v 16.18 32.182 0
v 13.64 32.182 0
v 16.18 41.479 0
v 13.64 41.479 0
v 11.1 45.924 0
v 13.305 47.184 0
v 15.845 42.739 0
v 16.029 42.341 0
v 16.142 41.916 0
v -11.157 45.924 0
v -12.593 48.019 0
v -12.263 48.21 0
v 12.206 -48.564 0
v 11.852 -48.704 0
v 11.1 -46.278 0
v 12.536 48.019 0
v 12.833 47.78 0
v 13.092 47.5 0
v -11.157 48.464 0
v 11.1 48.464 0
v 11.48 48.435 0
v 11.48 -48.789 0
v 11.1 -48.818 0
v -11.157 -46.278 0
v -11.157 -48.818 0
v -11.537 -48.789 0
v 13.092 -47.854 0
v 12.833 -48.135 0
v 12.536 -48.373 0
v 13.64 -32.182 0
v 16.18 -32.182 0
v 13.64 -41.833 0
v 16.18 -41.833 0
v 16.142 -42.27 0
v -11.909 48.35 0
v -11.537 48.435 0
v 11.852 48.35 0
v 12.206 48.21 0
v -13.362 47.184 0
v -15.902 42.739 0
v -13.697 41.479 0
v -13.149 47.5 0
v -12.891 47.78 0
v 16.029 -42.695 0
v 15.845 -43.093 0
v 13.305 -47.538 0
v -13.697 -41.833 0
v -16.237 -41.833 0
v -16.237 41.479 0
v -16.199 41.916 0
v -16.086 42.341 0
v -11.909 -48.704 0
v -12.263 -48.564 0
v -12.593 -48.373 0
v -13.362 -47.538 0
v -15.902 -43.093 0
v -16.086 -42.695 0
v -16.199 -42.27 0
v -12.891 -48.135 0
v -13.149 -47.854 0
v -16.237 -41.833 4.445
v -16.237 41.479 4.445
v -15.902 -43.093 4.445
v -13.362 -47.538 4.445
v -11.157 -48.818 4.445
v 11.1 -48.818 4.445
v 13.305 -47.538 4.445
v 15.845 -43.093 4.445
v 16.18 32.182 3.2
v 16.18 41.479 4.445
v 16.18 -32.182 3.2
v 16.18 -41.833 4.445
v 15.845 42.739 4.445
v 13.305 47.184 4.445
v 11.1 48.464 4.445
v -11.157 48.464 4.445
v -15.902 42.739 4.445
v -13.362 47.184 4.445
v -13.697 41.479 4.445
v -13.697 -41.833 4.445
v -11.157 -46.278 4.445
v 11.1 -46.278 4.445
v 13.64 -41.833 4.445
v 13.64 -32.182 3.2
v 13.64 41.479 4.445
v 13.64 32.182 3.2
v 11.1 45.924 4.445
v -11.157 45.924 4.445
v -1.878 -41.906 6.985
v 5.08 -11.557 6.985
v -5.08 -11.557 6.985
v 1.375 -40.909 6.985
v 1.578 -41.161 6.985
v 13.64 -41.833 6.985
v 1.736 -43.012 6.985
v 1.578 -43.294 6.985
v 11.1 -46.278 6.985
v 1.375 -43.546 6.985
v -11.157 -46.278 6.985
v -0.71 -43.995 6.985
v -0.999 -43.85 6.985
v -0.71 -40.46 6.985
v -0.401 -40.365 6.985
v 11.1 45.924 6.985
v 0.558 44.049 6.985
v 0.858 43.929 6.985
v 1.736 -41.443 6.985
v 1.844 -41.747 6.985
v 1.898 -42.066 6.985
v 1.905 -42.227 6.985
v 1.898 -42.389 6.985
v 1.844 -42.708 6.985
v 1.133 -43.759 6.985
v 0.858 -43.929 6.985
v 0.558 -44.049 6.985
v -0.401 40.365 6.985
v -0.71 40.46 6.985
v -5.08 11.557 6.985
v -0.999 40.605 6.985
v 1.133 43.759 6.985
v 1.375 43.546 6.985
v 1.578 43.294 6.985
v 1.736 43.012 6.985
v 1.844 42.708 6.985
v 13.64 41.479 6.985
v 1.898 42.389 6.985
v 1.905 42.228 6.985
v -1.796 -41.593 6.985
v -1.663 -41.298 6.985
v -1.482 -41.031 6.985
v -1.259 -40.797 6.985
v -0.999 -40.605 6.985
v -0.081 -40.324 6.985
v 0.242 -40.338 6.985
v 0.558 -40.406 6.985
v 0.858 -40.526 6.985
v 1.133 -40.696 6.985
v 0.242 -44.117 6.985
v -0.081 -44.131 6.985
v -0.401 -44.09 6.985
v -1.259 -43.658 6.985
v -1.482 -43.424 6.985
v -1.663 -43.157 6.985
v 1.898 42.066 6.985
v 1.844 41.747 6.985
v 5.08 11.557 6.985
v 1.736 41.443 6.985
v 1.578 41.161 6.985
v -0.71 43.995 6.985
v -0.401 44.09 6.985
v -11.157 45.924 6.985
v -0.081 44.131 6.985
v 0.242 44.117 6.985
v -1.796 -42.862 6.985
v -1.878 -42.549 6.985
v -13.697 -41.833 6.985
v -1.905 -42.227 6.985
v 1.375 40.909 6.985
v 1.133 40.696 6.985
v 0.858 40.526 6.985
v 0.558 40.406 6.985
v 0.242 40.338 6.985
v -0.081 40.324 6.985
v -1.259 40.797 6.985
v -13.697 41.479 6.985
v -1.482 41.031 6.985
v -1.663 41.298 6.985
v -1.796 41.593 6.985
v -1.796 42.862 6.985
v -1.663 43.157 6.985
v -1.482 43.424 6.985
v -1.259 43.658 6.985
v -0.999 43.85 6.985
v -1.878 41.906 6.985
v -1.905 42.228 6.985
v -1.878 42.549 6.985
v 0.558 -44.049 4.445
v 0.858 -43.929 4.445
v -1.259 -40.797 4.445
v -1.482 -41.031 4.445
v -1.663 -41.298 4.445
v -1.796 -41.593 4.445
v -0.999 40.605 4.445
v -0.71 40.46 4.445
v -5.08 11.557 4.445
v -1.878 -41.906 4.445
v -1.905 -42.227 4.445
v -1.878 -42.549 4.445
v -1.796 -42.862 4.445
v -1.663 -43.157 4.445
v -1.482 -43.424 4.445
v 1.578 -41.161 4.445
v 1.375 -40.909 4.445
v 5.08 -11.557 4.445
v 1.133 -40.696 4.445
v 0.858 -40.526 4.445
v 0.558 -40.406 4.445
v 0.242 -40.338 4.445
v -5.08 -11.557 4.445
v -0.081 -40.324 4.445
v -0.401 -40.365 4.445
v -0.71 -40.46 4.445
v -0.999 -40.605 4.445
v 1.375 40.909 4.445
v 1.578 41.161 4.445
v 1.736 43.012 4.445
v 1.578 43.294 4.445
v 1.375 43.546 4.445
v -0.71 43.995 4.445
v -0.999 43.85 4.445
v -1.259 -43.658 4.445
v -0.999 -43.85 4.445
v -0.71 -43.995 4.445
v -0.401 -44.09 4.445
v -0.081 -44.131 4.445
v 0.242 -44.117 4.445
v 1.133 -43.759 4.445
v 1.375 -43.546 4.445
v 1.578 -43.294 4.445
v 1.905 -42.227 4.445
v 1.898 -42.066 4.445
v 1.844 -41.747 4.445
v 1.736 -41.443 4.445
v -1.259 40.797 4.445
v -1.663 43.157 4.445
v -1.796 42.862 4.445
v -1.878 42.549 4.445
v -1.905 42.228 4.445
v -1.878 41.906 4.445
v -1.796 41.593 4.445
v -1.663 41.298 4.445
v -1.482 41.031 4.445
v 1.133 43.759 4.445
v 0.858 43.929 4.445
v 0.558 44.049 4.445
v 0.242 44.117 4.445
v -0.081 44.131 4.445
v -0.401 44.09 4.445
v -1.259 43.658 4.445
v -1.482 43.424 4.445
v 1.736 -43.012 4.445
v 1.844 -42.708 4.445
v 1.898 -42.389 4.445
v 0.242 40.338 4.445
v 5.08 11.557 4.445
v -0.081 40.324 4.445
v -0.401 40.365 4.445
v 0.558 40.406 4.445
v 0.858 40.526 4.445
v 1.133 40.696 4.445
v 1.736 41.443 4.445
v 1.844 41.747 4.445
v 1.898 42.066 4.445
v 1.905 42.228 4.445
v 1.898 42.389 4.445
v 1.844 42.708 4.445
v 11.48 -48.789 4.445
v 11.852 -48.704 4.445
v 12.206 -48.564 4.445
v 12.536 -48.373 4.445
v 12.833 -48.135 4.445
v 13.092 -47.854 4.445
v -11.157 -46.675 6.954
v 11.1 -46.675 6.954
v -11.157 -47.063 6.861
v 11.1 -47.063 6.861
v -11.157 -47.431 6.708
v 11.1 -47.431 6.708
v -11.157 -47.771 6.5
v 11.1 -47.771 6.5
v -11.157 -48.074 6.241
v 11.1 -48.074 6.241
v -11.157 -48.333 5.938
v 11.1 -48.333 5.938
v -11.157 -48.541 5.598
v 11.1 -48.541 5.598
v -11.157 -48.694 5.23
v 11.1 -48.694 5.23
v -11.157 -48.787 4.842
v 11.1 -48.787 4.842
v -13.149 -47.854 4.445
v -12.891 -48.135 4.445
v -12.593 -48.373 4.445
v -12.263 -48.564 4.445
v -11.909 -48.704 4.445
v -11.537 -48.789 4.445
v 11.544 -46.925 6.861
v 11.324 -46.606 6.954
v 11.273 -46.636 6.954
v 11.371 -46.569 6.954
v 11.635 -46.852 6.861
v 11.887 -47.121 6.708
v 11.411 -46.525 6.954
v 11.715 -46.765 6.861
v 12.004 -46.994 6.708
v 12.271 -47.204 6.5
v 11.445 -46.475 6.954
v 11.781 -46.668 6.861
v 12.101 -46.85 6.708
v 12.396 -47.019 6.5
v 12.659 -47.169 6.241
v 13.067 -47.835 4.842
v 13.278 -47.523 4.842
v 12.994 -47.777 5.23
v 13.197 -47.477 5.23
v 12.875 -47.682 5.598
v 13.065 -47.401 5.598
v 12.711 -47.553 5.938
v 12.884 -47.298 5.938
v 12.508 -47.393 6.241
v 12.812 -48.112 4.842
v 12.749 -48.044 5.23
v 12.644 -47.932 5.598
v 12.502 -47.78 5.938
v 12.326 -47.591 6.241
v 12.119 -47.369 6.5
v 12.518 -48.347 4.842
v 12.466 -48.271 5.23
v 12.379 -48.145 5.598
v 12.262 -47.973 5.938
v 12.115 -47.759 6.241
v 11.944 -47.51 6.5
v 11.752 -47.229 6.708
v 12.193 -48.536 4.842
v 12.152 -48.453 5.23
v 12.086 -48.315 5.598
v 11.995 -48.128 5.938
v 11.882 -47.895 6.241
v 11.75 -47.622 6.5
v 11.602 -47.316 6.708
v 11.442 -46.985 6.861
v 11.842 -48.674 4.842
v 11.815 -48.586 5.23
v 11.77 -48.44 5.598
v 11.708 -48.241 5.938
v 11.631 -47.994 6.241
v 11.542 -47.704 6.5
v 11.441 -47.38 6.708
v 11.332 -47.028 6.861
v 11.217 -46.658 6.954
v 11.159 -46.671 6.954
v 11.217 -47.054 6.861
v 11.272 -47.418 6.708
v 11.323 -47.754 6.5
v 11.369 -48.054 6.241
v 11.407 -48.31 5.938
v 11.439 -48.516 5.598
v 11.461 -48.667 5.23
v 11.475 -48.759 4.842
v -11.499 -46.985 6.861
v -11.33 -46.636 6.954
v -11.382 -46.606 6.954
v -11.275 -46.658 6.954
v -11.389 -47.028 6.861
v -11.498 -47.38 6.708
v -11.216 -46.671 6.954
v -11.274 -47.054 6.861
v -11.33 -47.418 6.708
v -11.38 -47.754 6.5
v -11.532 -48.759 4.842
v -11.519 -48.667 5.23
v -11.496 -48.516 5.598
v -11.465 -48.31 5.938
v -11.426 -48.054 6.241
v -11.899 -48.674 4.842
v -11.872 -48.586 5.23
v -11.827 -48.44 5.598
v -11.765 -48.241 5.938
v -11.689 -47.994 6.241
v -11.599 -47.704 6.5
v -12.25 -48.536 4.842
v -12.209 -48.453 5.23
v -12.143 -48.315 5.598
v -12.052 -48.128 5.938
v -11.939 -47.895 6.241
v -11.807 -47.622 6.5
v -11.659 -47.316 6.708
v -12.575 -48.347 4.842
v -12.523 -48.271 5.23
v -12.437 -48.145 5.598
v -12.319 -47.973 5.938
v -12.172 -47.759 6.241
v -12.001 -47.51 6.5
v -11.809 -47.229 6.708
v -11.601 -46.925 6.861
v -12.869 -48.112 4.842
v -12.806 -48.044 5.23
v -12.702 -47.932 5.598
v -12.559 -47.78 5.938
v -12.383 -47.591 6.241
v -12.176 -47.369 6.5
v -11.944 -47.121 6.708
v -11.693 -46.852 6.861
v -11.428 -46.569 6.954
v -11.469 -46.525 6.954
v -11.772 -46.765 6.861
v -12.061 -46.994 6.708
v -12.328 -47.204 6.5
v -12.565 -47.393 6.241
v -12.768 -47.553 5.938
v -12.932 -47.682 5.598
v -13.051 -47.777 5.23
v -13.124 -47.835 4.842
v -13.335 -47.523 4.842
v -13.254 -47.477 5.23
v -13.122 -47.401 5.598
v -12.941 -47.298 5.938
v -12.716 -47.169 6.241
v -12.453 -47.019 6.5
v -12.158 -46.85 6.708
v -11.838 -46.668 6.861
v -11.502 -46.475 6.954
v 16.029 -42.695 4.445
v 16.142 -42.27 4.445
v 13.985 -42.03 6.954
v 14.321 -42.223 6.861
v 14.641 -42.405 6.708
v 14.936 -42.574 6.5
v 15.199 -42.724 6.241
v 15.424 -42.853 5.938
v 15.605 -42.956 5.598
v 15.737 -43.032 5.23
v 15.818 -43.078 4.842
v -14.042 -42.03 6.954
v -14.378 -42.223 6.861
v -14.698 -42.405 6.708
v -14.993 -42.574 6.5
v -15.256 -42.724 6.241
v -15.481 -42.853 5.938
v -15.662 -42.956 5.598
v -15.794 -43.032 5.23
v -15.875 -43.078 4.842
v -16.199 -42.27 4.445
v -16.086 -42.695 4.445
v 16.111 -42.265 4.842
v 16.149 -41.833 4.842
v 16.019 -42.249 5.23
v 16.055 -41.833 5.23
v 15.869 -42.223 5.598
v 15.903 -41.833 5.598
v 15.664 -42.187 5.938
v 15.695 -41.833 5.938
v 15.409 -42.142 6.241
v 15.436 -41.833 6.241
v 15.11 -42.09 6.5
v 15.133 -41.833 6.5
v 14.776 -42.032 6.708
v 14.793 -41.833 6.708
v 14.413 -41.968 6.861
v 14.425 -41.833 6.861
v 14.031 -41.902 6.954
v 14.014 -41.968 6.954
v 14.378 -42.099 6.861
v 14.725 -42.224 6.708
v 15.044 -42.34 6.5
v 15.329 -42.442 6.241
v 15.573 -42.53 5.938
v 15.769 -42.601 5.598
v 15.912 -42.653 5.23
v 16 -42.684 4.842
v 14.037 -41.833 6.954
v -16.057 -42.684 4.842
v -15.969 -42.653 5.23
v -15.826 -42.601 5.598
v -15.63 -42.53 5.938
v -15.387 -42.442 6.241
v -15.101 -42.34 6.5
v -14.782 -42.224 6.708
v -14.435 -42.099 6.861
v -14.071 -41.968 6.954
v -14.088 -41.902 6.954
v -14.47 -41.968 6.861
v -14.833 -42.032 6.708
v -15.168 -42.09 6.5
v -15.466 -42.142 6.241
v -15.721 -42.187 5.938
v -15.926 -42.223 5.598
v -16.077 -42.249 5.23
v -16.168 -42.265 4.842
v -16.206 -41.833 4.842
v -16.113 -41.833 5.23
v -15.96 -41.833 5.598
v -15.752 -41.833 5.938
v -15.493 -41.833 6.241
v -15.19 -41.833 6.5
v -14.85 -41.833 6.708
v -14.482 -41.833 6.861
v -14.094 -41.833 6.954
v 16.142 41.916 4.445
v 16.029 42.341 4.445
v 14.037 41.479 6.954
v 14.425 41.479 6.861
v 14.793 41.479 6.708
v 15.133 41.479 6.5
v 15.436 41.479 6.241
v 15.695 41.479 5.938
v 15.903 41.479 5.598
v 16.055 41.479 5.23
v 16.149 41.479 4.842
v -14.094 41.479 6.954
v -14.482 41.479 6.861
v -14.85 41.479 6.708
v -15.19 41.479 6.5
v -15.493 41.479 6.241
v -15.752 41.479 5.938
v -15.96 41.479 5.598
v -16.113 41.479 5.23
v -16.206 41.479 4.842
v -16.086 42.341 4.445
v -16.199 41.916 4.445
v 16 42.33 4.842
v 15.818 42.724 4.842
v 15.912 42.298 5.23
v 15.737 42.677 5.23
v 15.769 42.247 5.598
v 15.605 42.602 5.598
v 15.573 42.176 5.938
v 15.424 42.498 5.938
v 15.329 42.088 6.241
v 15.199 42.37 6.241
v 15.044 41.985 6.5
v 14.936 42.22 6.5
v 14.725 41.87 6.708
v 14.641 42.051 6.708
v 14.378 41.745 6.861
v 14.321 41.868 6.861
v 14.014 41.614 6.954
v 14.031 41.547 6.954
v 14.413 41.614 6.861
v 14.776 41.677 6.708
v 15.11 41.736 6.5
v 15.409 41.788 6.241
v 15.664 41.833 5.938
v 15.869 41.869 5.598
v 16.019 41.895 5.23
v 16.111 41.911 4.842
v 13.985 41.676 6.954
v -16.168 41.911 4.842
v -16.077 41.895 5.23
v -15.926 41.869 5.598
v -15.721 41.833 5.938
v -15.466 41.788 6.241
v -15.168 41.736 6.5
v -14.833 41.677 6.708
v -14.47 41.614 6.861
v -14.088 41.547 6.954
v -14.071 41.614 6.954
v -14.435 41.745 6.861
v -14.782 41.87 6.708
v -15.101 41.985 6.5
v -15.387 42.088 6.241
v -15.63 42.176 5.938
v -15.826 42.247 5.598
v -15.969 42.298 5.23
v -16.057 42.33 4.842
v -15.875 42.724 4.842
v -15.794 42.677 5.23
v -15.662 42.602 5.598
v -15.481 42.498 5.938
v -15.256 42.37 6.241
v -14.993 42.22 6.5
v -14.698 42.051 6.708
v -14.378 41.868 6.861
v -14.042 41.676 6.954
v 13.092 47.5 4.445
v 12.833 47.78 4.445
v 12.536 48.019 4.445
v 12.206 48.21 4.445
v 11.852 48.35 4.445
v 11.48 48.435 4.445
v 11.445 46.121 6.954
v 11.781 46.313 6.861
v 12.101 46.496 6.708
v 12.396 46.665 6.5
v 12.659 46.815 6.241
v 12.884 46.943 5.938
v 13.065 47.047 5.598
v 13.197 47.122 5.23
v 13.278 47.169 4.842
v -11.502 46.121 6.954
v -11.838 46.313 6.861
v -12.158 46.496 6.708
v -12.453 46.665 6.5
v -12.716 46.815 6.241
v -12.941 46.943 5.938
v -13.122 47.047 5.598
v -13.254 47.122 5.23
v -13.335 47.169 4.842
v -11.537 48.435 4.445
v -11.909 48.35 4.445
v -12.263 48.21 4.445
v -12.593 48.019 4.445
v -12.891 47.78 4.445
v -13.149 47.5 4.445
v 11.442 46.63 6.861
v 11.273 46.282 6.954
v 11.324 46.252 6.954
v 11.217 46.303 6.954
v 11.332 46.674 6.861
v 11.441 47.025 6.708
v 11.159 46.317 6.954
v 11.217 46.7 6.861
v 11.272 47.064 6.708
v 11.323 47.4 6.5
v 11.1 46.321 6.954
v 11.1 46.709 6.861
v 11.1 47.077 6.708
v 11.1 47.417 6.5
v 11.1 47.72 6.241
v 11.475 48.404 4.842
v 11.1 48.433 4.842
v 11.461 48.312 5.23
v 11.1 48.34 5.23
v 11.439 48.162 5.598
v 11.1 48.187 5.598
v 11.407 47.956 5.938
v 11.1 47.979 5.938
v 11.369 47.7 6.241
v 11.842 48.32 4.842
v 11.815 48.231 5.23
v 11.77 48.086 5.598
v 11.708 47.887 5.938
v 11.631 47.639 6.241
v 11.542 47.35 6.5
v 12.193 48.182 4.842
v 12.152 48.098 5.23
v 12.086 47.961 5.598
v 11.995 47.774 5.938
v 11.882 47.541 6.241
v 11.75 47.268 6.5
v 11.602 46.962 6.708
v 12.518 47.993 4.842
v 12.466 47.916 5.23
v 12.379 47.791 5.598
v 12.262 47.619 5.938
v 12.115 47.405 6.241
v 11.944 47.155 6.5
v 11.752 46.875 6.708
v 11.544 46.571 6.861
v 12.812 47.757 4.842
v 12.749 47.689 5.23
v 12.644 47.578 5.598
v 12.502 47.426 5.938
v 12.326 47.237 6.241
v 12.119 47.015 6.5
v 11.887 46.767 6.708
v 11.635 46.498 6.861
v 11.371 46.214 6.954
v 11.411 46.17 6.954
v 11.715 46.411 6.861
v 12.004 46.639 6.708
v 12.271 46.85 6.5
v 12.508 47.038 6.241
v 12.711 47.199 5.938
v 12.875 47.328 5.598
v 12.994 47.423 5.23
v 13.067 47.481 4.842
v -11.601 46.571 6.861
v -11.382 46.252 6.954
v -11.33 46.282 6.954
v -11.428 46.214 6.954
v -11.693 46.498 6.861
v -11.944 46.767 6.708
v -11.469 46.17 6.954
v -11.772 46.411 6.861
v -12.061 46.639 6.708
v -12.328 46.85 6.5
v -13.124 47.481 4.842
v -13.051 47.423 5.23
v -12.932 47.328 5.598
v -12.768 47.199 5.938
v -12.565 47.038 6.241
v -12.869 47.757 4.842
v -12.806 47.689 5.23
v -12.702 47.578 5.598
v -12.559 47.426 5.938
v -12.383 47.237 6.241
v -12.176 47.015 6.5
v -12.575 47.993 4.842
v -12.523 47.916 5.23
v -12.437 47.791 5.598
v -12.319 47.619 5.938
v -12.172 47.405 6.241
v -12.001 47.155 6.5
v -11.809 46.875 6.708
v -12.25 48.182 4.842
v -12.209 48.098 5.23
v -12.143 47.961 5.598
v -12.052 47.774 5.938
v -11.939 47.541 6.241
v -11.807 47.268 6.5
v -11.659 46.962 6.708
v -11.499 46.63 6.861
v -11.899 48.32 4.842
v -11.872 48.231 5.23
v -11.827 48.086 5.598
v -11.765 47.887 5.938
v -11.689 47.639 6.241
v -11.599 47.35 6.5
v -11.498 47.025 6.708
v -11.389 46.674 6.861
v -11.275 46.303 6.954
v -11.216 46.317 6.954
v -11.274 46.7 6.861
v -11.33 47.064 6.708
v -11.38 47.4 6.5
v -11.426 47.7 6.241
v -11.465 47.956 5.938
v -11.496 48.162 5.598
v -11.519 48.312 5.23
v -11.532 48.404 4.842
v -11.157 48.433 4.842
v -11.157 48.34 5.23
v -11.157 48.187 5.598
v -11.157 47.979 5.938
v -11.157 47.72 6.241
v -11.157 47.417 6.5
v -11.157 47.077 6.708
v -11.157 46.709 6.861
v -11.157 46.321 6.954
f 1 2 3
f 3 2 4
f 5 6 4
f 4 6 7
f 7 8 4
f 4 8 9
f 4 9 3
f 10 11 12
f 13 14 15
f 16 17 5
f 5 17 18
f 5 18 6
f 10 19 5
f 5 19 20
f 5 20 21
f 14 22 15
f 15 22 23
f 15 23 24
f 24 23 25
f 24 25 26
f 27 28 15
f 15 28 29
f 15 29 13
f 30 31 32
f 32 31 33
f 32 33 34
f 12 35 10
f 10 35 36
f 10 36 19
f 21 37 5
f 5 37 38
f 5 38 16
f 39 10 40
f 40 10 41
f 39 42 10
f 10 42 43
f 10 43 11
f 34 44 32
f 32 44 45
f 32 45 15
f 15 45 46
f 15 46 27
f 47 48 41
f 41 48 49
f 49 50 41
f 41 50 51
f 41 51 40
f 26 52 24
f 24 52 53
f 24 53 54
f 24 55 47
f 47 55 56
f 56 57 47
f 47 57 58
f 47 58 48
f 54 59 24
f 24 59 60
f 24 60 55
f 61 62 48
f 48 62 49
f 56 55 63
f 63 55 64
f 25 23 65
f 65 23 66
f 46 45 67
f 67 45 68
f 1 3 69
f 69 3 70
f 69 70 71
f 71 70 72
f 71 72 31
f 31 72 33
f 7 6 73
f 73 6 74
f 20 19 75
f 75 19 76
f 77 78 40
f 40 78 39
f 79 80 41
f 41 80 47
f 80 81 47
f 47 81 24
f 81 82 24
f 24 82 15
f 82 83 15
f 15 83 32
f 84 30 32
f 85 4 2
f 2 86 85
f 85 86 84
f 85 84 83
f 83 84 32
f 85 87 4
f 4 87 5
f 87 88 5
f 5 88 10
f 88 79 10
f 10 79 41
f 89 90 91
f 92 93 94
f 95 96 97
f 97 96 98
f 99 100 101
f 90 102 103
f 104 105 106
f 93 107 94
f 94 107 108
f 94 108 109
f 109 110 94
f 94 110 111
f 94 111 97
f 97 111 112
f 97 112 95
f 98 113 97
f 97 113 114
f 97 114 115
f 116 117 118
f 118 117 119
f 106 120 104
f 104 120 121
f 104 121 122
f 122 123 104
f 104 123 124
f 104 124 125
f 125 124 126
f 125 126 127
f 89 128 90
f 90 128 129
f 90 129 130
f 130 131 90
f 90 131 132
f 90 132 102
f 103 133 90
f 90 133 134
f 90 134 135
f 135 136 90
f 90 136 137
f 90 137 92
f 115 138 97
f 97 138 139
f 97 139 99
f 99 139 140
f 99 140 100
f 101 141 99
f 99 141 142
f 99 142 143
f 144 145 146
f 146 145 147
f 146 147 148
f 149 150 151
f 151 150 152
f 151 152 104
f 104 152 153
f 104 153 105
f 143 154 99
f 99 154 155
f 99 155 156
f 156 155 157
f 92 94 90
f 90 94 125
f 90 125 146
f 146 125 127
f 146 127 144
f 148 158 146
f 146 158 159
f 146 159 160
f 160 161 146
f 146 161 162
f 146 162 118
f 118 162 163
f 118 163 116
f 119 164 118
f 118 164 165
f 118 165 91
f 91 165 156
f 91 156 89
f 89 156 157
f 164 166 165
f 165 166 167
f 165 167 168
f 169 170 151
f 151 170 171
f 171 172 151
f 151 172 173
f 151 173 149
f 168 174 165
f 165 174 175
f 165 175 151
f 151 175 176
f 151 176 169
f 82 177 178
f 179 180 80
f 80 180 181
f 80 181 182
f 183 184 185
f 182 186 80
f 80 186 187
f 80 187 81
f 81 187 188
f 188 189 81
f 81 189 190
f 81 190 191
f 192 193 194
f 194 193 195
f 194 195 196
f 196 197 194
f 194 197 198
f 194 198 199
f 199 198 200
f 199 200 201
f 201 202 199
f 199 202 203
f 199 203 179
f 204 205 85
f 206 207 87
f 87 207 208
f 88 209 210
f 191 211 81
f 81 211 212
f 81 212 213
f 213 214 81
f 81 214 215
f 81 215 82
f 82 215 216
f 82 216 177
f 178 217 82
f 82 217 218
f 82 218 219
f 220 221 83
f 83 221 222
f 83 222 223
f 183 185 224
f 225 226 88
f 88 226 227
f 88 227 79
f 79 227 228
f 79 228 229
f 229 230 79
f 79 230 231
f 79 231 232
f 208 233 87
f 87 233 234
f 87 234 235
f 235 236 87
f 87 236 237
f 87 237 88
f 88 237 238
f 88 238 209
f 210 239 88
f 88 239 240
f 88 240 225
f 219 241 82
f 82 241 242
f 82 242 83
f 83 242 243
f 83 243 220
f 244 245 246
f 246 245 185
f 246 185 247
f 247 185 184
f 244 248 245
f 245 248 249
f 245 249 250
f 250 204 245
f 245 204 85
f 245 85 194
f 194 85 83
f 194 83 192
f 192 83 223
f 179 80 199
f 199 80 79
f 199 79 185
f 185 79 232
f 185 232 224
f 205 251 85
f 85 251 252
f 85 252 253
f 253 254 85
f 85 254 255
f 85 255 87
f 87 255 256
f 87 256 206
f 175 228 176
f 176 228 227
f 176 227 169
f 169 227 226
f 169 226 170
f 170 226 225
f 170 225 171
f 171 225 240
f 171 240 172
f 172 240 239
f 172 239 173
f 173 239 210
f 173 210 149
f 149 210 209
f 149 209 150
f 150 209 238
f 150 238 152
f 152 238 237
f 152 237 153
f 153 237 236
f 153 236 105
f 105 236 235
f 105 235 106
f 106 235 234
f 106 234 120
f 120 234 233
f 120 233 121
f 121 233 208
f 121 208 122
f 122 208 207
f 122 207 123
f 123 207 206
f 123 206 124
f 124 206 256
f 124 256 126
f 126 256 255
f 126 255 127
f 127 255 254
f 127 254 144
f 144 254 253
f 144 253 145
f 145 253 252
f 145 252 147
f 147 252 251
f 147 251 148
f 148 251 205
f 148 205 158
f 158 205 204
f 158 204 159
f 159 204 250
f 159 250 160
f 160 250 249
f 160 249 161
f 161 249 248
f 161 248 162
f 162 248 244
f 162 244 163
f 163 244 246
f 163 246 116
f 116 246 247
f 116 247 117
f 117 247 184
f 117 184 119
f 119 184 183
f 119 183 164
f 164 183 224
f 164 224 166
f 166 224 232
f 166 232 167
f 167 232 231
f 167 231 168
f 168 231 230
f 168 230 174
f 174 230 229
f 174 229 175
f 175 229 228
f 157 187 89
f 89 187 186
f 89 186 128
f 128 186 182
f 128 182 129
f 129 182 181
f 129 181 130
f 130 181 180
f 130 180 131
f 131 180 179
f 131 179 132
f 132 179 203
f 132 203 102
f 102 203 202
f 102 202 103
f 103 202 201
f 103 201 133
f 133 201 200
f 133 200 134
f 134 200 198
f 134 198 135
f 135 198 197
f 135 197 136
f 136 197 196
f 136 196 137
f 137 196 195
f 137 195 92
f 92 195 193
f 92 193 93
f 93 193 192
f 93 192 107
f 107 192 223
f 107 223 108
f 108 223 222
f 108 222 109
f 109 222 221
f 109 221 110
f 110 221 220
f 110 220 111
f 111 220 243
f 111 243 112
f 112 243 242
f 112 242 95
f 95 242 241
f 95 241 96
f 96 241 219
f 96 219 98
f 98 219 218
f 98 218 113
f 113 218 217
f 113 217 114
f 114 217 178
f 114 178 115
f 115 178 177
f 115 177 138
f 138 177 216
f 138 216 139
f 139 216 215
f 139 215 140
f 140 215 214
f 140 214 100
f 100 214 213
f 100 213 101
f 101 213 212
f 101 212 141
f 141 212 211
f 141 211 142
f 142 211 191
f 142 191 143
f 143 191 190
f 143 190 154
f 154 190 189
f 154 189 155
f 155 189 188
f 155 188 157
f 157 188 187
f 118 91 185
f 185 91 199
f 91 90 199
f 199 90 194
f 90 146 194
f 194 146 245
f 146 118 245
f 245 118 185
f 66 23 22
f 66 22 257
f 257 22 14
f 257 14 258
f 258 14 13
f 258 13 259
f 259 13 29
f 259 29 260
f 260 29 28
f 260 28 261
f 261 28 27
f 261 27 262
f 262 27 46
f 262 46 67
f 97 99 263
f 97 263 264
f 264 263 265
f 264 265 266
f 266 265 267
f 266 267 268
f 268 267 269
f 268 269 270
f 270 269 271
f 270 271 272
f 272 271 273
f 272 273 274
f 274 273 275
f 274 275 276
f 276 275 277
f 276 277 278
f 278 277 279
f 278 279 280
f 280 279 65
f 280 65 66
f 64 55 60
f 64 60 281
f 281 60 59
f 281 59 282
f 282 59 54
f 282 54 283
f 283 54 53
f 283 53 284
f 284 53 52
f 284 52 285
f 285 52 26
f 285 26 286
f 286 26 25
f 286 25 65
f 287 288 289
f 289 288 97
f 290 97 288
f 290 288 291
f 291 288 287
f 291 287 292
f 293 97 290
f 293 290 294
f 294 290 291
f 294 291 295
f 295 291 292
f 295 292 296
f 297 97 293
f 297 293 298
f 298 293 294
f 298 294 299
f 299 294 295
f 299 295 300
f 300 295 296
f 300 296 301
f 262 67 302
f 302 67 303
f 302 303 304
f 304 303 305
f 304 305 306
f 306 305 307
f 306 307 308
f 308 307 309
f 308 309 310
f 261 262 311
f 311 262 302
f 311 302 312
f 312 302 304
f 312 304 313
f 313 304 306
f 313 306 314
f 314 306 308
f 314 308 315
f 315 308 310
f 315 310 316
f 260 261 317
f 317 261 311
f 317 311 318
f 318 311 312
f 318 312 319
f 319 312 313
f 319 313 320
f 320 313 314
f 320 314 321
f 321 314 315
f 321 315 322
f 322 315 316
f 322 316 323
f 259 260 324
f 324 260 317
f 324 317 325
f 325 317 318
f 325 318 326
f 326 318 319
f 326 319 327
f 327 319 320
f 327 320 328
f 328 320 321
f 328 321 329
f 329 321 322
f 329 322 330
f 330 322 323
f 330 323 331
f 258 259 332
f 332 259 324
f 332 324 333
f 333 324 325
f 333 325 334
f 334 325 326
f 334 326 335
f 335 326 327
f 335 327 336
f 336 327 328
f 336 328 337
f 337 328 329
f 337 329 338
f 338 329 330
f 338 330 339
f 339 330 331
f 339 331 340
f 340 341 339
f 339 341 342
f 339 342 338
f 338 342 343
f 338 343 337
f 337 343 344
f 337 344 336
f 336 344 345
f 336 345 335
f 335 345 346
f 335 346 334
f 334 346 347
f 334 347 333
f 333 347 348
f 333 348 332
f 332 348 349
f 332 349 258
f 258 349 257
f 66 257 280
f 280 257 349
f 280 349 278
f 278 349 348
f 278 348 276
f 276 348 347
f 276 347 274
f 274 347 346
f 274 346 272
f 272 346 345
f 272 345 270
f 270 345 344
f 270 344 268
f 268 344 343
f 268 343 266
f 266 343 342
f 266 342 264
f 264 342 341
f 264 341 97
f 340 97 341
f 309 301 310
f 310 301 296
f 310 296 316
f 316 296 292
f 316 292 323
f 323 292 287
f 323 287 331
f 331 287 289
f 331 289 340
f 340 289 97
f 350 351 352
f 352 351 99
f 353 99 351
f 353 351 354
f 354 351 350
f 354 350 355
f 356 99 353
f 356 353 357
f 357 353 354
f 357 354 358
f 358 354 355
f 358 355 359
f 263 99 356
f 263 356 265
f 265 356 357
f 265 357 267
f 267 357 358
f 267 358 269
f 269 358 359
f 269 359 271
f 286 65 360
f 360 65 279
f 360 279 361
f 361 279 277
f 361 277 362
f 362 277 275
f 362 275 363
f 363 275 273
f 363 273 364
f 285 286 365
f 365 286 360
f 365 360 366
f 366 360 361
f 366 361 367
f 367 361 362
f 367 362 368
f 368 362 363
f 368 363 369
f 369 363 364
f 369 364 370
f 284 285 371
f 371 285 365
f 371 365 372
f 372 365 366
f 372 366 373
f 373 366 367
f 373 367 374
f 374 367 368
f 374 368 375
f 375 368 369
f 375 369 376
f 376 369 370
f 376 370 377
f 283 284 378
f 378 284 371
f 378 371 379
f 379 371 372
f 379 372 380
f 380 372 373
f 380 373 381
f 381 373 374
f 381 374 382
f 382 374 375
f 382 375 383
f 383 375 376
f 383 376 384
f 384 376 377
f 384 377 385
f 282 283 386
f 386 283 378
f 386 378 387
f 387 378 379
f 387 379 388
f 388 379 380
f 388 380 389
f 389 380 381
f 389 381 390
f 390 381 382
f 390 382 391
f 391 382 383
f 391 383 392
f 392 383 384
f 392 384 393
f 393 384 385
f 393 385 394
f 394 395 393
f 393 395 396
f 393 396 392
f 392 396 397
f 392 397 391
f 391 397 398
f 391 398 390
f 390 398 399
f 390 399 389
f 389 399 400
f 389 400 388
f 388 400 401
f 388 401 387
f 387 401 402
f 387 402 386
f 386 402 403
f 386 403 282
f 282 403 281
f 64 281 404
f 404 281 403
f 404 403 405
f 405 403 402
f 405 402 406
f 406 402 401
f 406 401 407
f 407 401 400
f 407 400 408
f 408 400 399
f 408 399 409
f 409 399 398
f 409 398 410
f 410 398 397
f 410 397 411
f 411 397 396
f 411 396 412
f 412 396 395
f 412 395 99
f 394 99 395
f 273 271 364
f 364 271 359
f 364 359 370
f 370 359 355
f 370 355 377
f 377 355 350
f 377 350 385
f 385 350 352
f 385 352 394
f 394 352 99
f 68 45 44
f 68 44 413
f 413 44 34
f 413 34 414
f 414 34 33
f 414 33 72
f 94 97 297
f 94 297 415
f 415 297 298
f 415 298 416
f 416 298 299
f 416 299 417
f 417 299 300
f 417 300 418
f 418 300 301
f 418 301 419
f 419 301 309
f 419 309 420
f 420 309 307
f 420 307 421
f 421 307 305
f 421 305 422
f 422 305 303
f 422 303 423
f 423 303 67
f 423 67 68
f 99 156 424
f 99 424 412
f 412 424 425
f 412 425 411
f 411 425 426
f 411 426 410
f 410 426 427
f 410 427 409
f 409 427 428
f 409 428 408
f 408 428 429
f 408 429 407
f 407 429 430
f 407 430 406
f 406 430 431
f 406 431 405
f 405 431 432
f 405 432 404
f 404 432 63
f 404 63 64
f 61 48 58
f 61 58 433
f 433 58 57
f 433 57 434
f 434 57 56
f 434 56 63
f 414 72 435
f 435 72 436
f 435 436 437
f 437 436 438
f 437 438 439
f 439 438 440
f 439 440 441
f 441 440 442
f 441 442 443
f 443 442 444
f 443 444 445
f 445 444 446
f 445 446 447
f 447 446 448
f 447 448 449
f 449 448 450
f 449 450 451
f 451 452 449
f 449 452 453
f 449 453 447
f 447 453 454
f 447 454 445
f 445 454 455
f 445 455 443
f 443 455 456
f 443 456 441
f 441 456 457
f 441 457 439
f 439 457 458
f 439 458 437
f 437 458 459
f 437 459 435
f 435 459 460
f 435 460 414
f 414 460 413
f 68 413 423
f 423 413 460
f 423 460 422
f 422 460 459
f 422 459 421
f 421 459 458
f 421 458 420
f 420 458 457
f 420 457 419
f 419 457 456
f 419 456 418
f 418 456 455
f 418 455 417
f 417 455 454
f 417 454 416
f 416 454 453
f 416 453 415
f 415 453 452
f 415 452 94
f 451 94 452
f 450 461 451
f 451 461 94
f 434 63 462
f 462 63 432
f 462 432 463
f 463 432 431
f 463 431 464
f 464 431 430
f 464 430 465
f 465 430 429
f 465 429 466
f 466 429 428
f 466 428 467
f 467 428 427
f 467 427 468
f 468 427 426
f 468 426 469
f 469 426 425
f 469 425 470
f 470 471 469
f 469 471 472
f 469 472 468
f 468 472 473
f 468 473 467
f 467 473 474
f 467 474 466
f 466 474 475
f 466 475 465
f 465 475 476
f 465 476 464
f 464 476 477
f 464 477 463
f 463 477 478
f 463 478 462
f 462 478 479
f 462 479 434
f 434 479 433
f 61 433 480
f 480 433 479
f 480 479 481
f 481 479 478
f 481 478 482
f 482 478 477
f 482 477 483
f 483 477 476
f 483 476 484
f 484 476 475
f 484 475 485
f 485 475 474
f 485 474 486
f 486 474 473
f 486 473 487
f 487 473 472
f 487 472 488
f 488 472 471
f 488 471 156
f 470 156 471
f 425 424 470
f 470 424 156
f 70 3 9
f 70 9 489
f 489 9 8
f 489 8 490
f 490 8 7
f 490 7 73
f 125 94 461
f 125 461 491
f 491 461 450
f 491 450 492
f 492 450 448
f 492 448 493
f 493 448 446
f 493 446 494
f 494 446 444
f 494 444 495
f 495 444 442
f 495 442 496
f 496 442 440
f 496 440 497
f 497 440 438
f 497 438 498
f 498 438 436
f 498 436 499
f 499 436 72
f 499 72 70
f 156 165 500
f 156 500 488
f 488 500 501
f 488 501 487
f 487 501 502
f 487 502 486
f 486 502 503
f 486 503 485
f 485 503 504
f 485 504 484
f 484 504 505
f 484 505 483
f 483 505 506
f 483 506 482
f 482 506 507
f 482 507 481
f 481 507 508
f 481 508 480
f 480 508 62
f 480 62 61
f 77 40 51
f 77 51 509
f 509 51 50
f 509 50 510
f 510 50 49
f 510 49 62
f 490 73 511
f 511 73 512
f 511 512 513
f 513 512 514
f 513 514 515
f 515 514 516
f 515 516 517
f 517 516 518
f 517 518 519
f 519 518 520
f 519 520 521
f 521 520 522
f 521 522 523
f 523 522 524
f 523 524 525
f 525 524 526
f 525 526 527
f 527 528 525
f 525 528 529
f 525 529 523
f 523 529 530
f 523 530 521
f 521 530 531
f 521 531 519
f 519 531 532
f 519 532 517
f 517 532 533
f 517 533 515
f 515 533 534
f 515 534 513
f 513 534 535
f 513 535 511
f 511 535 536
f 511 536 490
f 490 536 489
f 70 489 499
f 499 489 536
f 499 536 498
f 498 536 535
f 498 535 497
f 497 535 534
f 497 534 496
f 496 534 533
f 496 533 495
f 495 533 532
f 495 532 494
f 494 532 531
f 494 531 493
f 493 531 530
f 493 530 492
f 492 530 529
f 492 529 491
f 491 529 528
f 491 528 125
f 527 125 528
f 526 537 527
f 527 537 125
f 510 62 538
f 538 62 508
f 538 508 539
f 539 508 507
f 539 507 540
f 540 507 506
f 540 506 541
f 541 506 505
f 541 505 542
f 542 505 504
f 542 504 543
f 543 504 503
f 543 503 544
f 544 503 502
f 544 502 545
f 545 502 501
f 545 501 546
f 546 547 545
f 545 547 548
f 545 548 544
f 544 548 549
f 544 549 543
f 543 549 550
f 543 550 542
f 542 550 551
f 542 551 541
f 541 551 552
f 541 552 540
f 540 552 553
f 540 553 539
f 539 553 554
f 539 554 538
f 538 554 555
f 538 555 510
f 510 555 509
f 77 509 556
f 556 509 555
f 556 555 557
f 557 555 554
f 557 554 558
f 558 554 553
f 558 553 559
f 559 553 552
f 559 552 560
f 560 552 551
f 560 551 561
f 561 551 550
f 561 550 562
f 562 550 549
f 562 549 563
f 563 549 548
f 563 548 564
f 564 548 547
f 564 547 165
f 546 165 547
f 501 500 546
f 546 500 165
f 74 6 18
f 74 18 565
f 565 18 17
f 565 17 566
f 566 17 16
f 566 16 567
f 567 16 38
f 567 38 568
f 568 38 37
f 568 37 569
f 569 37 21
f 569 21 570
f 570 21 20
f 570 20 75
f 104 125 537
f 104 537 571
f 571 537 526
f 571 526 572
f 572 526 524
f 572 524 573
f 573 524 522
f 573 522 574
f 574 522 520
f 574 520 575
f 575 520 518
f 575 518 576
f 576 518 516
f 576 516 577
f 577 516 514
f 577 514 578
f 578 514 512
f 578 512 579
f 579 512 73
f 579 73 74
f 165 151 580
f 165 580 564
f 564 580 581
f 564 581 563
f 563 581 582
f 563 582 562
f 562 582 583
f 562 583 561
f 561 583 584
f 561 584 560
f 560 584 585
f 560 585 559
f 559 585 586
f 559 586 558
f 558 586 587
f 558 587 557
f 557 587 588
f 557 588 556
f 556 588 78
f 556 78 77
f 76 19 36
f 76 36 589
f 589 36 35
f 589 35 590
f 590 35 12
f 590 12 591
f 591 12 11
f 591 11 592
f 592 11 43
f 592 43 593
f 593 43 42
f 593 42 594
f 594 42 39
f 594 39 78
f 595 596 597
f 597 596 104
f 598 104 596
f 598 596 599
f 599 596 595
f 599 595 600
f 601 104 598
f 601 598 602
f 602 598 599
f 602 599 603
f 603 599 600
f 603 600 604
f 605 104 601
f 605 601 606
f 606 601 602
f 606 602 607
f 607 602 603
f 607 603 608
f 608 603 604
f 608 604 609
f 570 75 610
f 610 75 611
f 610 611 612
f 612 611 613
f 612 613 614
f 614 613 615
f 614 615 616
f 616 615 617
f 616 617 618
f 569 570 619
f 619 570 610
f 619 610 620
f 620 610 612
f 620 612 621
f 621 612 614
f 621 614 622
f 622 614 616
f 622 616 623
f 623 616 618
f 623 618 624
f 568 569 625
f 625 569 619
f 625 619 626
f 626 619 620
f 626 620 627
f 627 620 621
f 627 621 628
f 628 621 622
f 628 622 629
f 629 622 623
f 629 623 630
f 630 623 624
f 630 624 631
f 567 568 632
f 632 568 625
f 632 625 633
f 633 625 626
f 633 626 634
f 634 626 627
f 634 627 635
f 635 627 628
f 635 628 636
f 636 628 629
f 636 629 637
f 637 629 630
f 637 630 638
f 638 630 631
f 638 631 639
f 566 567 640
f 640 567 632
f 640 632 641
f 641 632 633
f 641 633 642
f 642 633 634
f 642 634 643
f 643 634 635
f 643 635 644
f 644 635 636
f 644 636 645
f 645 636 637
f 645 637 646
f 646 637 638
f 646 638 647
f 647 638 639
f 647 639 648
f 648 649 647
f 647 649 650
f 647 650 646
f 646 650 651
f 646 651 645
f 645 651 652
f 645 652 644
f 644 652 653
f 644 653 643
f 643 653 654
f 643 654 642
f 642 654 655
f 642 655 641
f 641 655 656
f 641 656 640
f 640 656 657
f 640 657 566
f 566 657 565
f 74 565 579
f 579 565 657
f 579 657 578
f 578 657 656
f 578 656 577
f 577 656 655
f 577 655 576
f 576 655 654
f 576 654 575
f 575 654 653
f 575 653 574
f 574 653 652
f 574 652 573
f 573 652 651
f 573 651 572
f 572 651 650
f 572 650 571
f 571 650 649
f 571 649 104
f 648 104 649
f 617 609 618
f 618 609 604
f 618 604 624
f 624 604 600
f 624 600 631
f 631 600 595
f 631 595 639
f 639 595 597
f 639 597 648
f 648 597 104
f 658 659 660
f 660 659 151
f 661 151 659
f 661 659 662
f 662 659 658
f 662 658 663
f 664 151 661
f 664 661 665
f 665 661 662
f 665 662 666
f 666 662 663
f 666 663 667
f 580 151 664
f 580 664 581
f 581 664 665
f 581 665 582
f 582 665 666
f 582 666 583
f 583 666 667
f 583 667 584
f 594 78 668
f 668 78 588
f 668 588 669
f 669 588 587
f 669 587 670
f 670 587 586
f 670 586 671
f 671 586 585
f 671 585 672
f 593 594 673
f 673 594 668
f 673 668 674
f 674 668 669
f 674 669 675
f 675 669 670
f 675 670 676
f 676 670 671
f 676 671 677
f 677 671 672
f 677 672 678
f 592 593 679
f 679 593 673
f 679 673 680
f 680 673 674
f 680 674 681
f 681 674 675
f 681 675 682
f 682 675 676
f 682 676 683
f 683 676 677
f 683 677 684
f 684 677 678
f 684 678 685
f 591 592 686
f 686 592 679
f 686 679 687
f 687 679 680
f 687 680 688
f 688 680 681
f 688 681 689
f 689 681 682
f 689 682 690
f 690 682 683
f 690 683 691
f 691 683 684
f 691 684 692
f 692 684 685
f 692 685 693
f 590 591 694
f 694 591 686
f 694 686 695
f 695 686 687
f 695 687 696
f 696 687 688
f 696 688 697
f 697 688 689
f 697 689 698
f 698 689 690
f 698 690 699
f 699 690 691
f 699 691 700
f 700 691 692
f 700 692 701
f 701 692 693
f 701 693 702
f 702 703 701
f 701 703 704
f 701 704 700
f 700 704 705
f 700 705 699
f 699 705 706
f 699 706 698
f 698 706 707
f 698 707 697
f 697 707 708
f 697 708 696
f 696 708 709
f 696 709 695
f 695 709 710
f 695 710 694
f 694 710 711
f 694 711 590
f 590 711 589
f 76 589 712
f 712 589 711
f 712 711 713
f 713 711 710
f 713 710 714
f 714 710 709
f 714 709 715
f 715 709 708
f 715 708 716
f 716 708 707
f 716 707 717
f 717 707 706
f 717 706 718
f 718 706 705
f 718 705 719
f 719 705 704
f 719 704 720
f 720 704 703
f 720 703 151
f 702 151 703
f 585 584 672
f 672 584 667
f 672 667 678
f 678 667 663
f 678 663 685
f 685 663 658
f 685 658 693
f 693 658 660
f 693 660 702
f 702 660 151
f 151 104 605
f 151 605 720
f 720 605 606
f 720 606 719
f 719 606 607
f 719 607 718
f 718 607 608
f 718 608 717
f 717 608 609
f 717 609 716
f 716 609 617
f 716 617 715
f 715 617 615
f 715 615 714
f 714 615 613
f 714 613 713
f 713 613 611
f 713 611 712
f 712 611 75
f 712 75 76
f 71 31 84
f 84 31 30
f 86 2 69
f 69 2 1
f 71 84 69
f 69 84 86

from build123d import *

# Parameters (mm, degrees)
BOSS_EXTRUDE1_DEPTH = 4.445
SKETCH2_R           = 1.905
SKETCH2_W           = 10.16
SKETCH2_H           = 23.114
BOSS_EXTRUDE2_DEPTH = 2.54
FILLET1_R           = 2.54
SKETCH3_W           = 6.4008
SKETCH3_H           = 64.3636
CUT_EXTRUDE1_DEPTH  = 2.54


with BuildPart() as part:
    # Sketch1 → Boss-Extrude1 (new body)
    with BuildSketch(Plane.XY):
        Polygon((-16.23695, 42.153431645), (-12.63096924, 48.463897975), (12.57381924, 48.463897975), (16.1798, 42.153431645), (16.1798, -42.507635695), (12.57381924, -48.818102025), (-12.63096924, -48.818102025), (-16.23695, -42.507635695), align=None)
        Polygon((-13.69695, 41.478897975), (-11.15695, 45.923897975), (11.0998, 45.923897975), (13.6398, 41.478897975), (13.6398, -41.833102025), (11.0998, -46.278102025), (-11.15695, -46.278102025), (-13.69695, -41.833102025), align=None, mode=Mode.SUBTRACT)
    extrude(amount=BOSS_EXTRUDE1_DEPTH)

    # Sketch2 → Boss-Extrude2 (add)
    with BuildSketch(Plane.XY.offset(4.445)):
        Polygon((-16.23695, 42.153431645), (-16.23695, -42.507635695), (-12.63096924, -48.818102025), (12.57381924, -48.818102025), (16.1798, -42.507635695), (16.1798, 42.153431645), (12.57381924, 48.463897975), (-12.63096924, 48.463897975), align=None)
        with Locations((0, 42.2275)):
            Circle(SKETCH2_R, mode=Mode.SUBTRACT)
        with Locations((0, -42.2275)):
            Circle(SKETCH2_R, mode=Mode.SUBTRACT)
        Rectangle(SKETCH2_W, SKETCH2_H, mode=Mode.SUBTRACT)
    extrude(amount=BOSS_EXTRUDE2_DEPTH)

    # Fillet1
    fillet1_edges = [part.edges().sort_by_distance(p)[0] for p in [
        (-16.23695, 42.153431645, 3.4925),
        (-12.63096924, 48.463897975, 3.4925),
        (12.57381924, 48.463897975, 3.4925),
        (16.1798, 42.153431645, 3.4925),
        (16.1798, -42.507635695, 3.4925),
        (12.57381924, -48.818102025, 3.4925),
        (-12.63096924, -48.818102025, 3.4925),
        (-16.23695, -42.507635695, 3.4925),
        (-14.43395962, 45.30866481, 6.985),
        (-16.23695, -0.177102025, 6.985),
        (-14.43395962, -45.66286886, 6.985),
        (-0.028575, -48.818102025, 6.985),
        (14.37680962, -45.66286886, 6.985),
        (16.1798, -0.177102025, 6.985),
        (14.37680962, 45.30866481, 6.985),
        (-0.028575, 48.463897975, 6.985),
    ]]
    fillet(fillet1_edges, radius=FILLET1_R)

    # Sketch3 → Cut-Extrude1 (cut)
    with BuildSketch(Plane(origin=(16.1798, 0, 0), x_dir=(0, 0, -1), z_dir=(1, 0, 0))):
        Rectangle(SKETCH3_W, SKETCH3_H)
    extrude(amount=-CUT_EXTRUDE1_DEPTH, mode=Mode.SUBTRACT)


solid = part.part
